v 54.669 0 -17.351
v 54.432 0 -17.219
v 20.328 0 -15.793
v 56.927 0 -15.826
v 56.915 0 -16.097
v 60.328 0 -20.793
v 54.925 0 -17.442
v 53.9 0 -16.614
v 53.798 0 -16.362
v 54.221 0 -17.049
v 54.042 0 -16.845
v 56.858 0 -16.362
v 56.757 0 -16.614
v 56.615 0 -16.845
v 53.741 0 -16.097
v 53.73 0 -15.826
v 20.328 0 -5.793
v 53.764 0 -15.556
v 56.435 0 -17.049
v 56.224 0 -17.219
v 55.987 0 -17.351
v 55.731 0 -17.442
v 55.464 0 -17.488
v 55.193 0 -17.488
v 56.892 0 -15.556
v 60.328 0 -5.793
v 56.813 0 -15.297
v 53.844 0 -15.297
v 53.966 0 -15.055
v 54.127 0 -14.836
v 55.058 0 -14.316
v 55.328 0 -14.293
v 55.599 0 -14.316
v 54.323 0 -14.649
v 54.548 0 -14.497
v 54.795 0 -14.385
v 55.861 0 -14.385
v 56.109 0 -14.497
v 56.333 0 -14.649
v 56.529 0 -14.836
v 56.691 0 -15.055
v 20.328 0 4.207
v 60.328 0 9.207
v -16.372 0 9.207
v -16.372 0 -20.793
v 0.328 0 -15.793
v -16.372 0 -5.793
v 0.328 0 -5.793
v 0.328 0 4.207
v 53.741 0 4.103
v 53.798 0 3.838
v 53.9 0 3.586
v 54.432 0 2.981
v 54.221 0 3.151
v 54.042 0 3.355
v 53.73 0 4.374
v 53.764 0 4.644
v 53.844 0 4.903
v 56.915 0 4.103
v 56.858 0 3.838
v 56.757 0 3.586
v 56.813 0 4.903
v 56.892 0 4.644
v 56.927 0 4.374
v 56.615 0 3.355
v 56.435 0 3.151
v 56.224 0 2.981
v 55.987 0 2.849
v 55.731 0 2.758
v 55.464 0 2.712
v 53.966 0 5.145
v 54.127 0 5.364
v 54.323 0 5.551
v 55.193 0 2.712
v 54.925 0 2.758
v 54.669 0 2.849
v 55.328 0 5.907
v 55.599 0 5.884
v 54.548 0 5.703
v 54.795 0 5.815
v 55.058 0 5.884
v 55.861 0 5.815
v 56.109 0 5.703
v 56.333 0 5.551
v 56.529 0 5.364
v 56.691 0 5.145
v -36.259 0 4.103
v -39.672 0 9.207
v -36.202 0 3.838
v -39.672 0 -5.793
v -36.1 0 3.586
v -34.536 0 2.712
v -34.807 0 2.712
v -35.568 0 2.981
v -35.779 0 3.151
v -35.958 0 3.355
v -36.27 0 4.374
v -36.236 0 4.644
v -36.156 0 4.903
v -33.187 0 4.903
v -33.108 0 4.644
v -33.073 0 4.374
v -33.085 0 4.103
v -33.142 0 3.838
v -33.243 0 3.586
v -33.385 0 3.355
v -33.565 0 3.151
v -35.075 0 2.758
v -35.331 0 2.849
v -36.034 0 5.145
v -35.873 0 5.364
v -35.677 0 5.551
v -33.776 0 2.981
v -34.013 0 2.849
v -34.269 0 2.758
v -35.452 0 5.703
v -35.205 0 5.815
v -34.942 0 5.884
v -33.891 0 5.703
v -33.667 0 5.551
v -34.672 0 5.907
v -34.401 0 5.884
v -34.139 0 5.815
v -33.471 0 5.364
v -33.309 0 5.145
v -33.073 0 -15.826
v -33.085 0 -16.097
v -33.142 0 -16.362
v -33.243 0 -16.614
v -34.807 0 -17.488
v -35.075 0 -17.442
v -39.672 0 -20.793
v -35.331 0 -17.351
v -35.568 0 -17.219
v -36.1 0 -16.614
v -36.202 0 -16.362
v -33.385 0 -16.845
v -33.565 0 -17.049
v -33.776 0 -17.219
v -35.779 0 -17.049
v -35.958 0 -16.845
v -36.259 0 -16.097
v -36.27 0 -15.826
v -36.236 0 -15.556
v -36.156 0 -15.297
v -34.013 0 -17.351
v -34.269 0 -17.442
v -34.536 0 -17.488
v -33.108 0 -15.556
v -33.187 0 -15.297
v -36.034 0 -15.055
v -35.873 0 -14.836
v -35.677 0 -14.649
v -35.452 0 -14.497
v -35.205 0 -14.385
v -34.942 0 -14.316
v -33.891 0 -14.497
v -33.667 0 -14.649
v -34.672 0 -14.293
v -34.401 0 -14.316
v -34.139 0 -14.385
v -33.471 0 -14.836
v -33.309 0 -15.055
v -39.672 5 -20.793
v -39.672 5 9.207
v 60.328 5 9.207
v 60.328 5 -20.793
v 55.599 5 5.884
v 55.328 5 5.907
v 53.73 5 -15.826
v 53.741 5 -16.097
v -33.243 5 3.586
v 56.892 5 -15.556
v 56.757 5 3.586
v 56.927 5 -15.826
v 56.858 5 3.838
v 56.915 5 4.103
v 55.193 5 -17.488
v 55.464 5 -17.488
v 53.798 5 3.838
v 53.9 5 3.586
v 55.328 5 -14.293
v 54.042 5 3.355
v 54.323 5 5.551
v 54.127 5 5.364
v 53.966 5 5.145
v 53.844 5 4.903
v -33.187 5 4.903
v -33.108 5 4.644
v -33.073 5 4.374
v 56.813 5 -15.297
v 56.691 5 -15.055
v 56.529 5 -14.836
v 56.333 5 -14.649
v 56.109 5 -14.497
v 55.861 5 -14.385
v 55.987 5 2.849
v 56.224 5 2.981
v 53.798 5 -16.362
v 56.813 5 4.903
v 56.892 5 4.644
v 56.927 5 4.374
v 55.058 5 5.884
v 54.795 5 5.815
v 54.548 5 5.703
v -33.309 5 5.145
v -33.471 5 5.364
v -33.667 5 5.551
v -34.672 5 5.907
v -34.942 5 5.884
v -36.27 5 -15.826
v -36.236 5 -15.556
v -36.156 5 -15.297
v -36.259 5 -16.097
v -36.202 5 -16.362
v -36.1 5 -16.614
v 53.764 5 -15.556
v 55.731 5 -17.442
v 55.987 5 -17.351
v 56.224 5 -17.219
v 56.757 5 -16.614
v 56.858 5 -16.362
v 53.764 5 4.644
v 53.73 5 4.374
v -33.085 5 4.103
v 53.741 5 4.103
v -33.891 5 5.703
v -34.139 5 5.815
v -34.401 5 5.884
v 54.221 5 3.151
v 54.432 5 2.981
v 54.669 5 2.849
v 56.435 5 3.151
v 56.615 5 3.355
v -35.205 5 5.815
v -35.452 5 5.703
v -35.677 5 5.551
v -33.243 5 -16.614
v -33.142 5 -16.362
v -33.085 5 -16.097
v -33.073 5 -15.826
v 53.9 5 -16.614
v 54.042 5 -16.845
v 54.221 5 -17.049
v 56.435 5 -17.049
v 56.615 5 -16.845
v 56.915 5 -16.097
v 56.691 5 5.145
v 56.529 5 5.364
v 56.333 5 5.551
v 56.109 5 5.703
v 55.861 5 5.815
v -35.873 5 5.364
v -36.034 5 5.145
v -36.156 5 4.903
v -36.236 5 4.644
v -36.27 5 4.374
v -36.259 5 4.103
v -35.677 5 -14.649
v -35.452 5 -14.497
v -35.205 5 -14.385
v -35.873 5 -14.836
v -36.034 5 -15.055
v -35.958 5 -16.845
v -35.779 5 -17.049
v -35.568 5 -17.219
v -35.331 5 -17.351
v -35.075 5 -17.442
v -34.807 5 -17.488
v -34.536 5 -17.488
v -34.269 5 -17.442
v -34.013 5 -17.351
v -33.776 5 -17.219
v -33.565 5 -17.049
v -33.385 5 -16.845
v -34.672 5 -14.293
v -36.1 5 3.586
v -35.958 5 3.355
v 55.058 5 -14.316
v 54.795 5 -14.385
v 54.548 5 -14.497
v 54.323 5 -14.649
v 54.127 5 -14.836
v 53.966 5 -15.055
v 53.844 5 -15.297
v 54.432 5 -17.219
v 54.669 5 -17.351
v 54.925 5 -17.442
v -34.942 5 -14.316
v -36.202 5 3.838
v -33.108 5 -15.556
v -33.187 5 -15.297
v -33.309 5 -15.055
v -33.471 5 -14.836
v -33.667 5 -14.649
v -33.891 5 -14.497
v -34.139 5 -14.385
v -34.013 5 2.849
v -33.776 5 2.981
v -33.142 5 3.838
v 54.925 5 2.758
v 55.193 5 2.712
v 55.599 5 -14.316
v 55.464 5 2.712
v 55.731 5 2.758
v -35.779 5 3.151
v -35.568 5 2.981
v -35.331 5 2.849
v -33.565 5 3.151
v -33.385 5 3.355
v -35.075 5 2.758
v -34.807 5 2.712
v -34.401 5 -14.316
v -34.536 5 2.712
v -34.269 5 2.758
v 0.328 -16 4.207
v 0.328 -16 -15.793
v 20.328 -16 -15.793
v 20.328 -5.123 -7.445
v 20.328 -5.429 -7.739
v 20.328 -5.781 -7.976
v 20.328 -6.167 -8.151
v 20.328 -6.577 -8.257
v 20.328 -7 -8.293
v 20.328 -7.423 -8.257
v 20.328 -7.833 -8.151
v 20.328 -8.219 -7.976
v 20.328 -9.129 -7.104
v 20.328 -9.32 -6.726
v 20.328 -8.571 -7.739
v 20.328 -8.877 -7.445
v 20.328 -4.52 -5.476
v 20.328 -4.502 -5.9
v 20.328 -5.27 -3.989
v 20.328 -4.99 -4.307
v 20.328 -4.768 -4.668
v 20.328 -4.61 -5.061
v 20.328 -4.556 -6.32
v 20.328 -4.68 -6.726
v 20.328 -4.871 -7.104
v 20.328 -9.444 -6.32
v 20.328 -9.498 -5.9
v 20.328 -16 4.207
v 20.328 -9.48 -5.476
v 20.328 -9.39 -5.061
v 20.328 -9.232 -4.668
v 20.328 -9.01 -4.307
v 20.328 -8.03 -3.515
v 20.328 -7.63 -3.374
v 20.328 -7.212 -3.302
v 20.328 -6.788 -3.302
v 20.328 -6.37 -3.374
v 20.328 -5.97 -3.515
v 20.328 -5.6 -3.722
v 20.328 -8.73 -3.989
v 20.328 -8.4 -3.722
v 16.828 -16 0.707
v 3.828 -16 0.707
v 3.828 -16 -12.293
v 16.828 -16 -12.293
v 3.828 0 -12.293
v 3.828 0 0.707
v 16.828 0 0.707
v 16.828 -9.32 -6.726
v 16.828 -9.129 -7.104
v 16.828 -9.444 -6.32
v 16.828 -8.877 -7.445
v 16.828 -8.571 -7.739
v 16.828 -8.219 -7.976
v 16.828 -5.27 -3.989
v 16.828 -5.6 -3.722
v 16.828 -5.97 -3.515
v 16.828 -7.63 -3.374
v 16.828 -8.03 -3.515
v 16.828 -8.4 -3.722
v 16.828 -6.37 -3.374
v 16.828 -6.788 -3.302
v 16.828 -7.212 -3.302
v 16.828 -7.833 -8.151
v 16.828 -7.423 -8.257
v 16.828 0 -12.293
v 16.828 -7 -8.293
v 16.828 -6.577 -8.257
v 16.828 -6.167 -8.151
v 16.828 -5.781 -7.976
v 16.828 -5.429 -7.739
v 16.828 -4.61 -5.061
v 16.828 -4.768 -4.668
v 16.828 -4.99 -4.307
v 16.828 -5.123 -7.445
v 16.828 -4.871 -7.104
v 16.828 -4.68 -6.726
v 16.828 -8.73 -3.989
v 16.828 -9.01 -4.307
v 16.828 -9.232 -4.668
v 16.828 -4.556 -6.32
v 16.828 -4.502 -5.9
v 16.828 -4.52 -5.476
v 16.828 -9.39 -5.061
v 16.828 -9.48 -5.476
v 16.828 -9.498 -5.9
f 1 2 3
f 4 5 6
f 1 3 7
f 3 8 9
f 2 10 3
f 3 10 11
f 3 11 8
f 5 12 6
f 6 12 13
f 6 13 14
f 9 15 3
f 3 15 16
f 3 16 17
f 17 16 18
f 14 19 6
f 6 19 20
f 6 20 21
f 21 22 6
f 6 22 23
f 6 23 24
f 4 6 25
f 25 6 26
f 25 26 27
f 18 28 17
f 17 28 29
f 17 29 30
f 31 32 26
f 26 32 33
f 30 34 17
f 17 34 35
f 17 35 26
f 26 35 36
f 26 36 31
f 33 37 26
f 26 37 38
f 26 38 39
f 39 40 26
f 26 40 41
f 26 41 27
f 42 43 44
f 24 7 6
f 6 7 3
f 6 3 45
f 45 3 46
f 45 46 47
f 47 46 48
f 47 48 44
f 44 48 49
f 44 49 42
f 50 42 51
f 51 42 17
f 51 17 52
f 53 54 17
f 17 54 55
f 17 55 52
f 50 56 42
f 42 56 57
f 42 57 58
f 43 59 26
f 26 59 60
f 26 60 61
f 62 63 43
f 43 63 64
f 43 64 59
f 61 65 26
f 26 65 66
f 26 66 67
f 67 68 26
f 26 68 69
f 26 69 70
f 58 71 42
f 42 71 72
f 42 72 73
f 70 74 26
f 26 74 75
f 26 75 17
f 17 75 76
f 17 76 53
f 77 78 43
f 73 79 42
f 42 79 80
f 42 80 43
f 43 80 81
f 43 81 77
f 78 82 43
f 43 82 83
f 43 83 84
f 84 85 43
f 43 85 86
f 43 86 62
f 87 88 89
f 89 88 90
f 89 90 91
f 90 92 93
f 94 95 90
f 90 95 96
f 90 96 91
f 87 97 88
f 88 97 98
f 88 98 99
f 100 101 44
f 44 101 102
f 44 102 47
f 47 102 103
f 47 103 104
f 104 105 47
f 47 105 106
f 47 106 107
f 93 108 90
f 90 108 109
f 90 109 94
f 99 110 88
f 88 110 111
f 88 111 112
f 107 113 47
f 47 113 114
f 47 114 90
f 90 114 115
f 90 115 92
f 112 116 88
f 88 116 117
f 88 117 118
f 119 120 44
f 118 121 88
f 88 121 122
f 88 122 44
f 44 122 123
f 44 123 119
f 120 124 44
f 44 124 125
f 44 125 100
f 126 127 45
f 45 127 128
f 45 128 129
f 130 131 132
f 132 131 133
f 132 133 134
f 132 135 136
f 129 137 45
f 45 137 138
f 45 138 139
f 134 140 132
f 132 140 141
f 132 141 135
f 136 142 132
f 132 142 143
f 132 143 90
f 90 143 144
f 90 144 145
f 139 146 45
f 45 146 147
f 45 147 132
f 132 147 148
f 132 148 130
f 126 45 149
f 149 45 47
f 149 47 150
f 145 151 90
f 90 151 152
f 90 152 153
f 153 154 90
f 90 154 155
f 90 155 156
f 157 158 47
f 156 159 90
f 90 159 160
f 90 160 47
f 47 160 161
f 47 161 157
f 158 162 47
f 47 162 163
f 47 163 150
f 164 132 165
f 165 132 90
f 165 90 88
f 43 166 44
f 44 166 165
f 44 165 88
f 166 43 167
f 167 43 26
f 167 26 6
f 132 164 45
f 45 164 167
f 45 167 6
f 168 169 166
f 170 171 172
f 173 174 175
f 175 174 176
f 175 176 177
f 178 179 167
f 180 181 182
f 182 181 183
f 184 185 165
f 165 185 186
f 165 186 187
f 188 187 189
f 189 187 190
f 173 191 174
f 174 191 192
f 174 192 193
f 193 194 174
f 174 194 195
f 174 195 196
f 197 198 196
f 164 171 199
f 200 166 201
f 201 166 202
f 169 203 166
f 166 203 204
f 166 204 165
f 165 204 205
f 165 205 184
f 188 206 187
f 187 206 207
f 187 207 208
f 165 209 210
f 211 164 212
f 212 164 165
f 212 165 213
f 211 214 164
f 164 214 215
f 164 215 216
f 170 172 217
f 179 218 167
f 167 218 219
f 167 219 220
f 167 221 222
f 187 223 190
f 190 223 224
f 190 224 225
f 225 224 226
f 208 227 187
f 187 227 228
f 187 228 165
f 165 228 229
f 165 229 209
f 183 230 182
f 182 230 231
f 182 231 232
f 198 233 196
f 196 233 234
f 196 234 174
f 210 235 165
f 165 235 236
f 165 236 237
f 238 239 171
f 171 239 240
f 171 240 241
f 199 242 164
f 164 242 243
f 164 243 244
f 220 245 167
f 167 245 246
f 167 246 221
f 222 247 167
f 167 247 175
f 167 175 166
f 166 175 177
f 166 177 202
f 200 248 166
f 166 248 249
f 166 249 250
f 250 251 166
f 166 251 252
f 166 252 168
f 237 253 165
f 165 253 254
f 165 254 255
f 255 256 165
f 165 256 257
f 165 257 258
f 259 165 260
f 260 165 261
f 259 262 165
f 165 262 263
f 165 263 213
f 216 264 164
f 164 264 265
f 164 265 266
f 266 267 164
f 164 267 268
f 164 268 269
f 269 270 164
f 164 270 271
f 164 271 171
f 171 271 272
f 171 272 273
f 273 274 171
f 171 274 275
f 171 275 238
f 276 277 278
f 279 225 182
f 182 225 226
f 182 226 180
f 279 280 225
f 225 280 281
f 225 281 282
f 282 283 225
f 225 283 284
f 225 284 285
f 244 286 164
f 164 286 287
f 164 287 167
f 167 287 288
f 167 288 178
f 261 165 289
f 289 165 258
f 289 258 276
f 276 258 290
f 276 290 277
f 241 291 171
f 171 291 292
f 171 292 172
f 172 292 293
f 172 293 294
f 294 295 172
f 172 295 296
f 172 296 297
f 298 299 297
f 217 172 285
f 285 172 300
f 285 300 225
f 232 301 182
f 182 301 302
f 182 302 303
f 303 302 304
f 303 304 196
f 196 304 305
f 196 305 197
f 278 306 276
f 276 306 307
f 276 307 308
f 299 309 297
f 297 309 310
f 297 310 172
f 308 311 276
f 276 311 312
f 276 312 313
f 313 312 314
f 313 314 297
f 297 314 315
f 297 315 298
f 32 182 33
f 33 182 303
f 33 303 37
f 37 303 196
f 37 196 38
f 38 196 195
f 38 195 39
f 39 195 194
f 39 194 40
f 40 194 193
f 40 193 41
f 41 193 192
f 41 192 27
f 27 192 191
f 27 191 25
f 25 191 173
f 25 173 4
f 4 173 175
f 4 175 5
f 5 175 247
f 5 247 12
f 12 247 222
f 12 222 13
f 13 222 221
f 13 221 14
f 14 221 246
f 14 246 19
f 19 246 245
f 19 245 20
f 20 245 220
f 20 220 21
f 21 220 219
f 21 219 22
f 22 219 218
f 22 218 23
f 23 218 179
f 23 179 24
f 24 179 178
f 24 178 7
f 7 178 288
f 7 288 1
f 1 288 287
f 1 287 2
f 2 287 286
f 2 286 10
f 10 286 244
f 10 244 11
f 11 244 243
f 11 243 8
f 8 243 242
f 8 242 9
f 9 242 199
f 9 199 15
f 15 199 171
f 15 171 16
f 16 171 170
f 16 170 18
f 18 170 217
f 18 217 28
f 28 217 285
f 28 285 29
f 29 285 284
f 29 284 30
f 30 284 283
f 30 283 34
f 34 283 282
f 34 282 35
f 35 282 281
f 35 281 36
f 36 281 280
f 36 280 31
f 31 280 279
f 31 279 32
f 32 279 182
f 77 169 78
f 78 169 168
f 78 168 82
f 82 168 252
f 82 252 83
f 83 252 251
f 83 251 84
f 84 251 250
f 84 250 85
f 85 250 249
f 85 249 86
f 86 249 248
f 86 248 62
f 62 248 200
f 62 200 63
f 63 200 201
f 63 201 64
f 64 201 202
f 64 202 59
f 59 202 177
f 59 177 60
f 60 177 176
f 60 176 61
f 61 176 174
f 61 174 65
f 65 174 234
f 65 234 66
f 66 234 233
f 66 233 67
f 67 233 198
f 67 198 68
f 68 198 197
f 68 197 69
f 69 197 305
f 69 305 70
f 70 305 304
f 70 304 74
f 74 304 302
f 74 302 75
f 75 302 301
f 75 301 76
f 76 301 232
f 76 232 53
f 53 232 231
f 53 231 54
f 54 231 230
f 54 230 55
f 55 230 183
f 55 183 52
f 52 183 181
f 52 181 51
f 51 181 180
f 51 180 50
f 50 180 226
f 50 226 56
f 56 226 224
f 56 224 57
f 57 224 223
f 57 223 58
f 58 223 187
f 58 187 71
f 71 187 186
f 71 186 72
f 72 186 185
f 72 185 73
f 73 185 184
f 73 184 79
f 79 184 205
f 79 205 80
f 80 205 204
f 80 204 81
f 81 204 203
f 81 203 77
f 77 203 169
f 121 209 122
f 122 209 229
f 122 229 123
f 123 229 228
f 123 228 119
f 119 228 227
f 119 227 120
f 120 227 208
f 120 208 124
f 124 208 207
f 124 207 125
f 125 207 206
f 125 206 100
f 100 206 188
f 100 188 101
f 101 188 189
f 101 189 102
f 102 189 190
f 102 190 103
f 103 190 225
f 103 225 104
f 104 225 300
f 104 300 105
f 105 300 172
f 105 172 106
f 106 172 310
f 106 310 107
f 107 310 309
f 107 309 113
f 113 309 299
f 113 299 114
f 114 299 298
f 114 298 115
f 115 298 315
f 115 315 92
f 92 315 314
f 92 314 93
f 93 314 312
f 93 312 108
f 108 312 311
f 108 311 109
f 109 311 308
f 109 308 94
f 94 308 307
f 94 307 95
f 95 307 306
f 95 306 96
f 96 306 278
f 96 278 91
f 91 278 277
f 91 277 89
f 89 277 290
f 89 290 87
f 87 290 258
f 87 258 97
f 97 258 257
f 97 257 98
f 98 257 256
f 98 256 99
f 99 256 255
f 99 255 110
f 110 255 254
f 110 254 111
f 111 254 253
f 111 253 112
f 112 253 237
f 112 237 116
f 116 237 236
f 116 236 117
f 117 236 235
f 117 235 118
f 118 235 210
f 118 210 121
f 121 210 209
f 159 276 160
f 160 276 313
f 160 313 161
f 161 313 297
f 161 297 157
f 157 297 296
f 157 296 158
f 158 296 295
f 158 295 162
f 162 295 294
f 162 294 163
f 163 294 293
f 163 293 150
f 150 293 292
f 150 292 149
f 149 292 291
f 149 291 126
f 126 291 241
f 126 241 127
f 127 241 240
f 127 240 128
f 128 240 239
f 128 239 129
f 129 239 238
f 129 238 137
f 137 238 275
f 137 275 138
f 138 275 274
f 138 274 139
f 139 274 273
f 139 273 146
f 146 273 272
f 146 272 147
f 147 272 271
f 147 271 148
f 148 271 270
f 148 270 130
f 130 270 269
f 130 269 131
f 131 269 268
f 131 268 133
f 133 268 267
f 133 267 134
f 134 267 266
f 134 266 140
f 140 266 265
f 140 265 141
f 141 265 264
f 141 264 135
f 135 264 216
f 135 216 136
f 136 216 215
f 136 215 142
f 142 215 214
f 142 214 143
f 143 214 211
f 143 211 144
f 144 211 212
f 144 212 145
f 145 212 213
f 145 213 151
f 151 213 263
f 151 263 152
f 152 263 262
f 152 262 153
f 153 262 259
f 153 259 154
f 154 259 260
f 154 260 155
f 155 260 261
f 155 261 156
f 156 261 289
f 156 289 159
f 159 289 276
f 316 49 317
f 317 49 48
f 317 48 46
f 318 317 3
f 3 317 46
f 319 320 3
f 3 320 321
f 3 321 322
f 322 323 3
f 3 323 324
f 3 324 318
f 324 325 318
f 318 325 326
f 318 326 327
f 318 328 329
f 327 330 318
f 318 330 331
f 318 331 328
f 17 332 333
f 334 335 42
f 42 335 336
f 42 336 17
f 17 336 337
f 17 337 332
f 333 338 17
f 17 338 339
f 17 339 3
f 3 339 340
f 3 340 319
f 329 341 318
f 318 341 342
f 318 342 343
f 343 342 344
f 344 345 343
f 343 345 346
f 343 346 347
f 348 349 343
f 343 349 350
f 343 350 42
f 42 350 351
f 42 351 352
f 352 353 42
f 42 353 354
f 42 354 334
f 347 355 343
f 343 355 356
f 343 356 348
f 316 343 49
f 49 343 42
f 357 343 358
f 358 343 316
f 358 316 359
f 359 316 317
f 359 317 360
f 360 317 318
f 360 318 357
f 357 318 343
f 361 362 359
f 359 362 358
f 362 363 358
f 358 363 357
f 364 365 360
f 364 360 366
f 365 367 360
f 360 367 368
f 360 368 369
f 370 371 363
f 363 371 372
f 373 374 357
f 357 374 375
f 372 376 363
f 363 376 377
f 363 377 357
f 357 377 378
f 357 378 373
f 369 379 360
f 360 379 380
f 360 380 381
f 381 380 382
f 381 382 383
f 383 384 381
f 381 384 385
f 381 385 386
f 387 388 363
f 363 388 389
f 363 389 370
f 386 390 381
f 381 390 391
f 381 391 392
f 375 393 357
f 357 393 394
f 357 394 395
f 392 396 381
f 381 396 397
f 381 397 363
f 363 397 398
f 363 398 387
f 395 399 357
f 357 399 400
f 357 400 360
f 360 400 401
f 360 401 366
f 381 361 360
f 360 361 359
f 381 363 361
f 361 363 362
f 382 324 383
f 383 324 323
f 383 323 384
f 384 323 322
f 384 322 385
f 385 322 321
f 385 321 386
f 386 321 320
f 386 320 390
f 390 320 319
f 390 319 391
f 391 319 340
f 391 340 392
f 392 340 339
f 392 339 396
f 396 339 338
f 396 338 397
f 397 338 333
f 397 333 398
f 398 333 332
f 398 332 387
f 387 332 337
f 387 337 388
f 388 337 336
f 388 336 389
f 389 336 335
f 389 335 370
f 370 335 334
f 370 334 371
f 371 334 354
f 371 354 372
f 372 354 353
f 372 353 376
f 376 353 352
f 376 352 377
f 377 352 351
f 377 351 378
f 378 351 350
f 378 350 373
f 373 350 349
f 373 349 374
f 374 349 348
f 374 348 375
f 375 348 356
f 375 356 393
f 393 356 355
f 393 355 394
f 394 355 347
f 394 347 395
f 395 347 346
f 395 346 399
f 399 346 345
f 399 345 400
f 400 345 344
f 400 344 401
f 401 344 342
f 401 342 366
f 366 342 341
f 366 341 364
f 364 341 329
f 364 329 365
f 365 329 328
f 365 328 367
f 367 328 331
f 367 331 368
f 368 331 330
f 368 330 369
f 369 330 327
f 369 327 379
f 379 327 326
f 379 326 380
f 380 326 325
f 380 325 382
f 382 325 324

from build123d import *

# Parameters (mm, degrees)
SKETCH_1_W          = 100
SKETCH_1_H          = 30
EXTRUDE_1_DEPTH     = 5
SKETCH_2_R          = 1.6
CUT_EXTRUDE_1_DEPTH = 5
SKETCH_3_W          = 20
SKETCH_3_H          = 20
EXTRUDE_2_DEPTH     = 16
SKETCH_4_W          = 13
SKETCH_4_H          = 13
CUT_EXTRUDE_2_DEPTH = 16
SKETCH_5_R          = 2.5
CUT_EXTRUDE_3_DEPTH = 10


with BuildPart() as part:
    # Эскиз1 → Бобышка-Вытянуть1 (new body)
    with BuildSketch(Plane(origin=(0, 0, 0), x_dir=(1, 0, 0), z_dir=(0, 1, 0))):
        with Locations((10.328317373, 5.793433653)):
            Rectangle(SKETCH_1_W, SKETCH_1_H)
    extrude(amount=EXTRUDE_1_DEPTH)

    # Эскиз2 → Вырез-Вытянуть1 (cut)
    with BuildSketch(Plane(origin=(0, 5, 0), x_dir=(1, 0, 0), z_dir=(0, 1, 0))):
        with Locations(Location((-34.671682627, 15.893433653, 0), (0, 0, 270))):
            Circle(SKETCH_2_R)
        with Locations(Location((-34.671682627, -4.306566347, 0), (0, 0, 270))):
            Circle(SKETCH_2_R)
        with Locations(Location((55.328317373, 15.893433653, 0), (0, 0, 270))):
            Circle(SKETCH_2_R)
        with Locations(Location((55.328317373, -4.306566347, 0), (0, 0, 270))):
            Circle(SKETCH_2_R)
    extrude(amount=-CUT_EXTRUDE_1_DEPTH, mode=Mode.SUBTRACT)

    # Эскиз3 → Бобышка-Вытянуть2 (add)
    with BuildSketch(Plane.XZ):
        with Locations((10.328317373, -5.793433653)):
            Rectangle(SKETCH_3_W, SKETCH_3_H)
    extrude(amount=EXTRUDE_2_DEPTH)

    # Эскиз4 → Вырез-Вытянуть2 (cut)
    with BuildSketch(Plane.XZ.offset(16)):
        with Locations((10.328317373, -5.793433653)):
            Rectangle(SKETCH_4_W, SKETCH_4_H)
    extrude(amount=-CUT_EXTRUDE_2_DEPTH, mode=Mode.SUBTRACT)

    # Эскиз5 → Вырез-Вытянуть3 (cut)
    with BuildSketch(Plane(origin=(20.328317373, 0, 0), x_dir=(0, 0, -1), z_dir=(1, 0, 0))):
        with Locations((5.793433653, -7)):
            Circle(SKETCH_5_R)
    extrude(amount=-CUT_EXTRUDE_3_DEPTH, mode=Mode.SUBTRACT)


solid = part.part
